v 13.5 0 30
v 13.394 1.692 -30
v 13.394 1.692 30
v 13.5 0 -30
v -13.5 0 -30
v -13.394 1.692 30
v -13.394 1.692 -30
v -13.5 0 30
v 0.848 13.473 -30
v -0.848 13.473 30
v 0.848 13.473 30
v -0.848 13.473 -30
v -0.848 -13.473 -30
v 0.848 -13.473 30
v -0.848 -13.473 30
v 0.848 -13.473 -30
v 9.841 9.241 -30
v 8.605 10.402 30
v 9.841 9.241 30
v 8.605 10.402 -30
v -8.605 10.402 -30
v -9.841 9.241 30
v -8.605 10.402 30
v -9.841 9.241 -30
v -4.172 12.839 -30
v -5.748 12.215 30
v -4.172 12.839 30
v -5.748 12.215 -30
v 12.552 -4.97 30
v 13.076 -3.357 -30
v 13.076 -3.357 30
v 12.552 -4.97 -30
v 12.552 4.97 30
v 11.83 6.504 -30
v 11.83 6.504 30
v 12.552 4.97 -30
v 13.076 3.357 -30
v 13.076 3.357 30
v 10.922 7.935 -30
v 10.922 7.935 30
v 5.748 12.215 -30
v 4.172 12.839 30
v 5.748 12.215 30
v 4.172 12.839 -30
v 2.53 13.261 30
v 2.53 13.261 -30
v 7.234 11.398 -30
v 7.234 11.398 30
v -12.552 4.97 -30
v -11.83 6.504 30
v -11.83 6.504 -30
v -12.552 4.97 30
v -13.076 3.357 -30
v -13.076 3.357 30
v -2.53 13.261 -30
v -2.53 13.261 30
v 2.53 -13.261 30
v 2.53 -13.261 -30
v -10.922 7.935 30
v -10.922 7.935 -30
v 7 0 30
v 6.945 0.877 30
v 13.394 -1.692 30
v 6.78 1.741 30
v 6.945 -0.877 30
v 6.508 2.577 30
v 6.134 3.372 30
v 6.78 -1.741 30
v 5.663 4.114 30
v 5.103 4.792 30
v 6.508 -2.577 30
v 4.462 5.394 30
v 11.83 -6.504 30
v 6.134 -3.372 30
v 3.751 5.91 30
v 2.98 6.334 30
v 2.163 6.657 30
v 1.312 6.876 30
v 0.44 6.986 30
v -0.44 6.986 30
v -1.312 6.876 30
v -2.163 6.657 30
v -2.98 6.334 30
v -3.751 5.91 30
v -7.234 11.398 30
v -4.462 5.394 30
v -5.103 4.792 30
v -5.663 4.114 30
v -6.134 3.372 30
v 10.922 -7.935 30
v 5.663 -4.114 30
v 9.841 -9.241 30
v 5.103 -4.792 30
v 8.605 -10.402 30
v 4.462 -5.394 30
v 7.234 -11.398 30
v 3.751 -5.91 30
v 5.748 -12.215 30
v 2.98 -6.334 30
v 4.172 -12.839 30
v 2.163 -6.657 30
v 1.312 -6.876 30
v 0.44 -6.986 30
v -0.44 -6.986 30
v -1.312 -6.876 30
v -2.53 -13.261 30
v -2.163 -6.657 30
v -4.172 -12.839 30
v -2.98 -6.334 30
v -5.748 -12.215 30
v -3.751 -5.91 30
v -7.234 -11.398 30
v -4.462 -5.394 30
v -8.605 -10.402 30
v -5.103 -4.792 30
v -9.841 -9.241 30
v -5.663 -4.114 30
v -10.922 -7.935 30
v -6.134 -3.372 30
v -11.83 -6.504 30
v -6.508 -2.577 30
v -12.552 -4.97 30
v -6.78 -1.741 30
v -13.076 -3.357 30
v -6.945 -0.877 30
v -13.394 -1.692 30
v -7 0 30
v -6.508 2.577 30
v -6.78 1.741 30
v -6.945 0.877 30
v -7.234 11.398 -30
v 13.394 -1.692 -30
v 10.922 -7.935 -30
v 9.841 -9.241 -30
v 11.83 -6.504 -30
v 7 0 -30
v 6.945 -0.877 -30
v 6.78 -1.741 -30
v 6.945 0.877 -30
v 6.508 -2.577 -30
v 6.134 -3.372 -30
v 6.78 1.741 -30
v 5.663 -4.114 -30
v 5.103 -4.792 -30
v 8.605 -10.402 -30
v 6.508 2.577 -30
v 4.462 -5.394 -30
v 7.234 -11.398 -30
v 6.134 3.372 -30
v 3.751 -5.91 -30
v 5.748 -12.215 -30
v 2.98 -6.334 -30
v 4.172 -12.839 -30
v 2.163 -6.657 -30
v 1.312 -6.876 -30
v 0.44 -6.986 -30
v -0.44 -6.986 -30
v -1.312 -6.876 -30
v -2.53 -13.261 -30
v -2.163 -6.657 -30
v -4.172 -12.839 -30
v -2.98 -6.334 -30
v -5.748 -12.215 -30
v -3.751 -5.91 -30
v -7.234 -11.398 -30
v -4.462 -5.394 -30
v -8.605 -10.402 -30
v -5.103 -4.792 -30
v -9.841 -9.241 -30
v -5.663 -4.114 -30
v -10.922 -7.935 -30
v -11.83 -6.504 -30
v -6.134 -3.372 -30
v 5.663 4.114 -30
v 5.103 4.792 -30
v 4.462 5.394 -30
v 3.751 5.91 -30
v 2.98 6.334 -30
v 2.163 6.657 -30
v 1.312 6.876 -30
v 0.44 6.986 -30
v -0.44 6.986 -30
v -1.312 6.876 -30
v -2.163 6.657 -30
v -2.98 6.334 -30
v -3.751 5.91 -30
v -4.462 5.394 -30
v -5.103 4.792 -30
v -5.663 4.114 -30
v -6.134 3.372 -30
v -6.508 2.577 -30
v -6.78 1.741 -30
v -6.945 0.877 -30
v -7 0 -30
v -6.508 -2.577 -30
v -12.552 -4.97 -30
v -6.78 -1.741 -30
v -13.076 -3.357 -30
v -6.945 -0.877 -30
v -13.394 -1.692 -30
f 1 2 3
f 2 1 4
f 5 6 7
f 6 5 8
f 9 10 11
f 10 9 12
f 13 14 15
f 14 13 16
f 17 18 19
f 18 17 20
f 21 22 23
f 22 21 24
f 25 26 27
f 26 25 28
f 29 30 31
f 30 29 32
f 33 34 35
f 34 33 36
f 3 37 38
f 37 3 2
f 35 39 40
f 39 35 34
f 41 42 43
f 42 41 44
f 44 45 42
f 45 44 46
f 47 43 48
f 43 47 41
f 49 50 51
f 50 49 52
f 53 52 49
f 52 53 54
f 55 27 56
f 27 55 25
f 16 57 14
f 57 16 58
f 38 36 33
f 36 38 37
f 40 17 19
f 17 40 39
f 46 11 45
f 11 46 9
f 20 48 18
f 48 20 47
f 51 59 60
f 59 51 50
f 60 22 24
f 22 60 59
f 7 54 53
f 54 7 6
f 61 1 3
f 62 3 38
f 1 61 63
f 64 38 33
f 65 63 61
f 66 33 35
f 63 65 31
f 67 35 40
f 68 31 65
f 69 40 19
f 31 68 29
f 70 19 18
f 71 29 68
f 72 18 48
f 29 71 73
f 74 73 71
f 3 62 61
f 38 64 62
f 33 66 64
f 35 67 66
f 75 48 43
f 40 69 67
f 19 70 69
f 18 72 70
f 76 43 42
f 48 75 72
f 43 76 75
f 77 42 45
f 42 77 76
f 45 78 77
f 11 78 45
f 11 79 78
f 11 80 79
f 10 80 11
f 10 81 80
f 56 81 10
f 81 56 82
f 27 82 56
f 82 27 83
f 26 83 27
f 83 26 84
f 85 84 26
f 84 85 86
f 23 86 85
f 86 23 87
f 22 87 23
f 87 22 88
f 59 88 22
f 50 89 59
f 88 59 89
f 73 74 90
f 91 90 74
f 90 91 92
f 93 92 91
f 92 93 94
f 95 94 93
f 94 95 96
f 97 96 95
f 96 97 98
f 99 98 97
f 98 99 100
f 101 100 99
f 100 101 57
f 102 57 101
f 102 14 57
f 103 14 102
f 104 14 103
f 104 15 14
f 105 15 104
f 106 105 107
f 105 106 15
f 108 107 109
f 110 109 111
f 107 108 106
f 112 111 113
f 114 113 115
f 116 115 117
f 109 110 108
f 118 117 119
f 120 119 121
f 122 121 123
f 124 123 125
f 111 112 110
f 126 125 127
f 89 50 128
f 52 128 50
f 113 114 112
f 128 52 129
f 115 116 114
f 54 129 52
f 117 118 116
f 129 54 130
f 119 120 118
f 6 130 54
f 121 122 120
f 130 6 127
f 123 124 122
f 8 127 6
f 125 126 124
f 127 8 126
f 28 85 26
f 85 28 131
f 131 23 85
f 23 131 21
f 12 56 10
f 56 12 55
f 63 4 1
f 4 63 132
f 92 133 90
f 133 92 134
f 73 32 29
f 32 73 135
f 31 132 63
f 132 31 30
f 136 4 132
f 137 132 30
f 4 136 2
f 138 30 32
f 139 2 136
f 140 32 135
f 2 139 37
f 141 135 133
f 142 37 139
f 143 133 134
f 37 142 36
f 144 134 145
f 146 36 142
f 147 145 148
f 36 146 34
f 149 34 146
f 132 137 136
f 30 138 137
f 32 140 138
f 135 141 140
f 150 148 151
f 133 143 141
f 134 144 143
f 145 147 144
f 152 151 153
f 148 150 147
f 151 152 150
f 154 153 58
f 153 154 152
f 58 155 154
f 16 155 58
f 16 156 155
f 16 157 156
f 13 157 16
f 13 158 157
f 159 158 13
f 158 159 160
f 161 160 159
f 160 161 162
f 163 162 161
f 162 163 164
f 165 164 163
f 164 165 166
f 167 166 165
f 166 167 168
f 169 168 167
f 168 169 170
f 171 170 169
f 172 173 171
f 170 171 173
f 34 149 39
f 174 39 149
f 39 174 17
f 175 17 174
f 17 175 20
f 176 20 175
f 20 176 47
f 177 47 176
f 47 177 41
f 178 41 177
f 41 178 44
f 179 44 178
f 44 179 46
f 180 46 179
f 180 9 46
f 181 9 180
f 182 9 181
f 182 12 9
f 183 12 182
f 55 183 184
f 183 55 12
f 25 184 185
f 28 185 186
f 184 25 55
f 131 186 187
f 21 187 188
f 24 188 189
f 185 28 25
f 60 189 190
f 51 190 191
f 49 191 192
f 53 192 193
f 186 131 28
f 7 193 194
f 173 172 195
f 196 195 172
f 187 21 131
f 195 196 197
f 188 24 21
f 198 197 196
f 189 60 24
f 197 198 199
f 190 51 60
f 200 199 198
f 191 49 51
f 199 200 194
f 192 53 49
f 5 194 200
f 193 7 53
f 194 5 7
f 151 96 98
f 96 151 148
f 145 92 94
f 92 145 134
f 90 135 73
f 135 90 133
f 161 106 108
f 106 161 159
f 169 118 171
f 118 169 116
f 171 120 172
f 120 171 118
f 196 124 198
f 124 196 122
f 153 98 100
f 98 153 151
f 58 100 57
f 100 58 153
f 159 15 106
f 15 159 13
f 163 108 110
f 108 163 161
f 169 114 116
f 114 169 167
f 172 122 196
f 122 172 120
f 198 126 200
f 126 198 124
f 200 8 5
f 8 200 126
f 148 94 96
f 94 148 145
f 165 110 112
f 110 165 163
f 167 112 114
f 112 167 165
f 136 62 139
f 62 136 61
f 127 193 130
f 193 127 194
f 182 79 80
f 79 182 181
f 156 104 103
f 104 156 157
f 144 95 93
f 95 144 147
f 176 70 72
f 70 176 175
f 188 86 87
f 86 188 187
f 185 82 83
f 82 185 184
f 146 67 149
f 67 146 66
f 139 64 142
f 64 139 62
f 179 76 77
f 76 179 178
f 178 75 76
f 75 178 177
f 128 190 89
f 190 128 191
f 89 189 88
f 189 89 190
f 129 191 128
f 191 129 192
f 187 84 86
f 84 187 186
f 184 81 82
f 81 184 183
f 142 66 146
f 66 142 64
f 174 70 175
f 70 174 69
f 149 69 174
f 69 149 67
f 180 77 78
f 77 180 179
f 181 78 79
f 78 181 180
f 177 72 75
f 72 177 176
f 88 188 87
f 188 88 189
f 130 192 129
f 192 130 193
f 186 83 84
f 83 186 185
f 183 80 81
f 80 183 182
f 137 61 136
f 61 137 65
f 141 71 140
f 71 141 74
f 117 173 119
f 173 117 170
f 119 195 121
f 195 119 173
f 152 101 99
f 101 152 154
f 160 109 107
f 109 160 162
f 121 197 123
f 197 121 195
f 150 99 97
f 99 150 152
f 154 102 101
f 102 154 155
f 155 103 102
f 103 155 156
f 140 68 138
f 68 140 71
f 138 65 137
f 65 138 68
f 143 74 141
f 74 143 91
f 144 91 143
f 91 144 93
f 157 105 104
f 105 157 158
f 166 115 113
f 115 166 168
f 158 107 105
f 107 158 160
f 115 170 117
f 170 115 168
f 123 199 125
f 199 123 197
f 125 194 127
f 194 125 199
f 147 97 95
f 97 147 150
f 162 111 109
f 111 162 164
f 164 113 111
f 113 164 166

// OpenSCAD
$fn = 50;


difference() {
	union() {
		translate(v = [0, 0, -30.0000000000]) {
			cylinder(h = 60, r = 13.5000000000);
		}
	}
	union() {
		translate(v = [0, 0, -100.0000000000]) {
			cylinder(h = 200, r = 7);
		}
	}
}
